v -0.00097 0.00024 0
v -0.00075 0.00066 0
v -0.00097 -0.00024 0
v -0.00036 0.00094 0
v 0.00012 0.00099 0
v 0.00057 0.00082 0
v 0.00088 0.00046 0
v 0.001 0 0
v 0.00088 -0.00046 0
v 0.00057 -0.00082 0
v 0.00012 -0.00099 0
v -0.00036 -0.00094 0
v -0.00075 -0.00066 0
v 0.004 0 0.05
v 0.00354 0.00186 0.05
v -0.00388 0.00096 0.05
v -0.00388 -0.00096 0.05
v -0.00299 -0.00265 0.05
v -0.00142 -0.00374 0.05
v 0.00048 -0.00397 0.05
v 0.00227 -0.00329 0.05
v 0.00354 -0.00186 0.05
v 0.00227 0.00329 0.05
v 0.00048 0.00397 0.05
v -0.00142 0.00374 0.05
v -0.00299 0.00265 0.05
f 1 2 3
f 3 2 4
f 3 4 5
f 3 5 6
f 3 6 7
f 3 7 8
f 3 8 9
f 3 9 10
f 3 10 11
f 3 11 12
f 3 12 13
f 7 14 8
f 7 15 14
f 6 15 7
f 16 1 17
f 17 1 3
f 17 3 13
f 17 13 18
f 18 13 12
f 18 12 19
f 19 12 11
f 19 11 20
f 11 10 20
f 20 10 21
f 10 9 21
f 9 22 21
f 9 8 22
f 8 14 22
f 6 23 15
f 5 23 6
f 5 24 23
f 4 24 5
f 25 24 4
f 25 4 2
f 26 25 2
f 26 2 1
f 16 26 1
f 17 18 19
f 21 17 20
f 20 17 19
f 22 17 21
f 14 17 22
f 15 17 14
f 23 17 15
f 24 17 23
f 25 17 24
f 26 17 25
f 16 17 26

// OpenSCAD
scale(v = [0.001, 0.001, 0.001])
{
     cylinder(h=50, r1=1, r2=4);
}
